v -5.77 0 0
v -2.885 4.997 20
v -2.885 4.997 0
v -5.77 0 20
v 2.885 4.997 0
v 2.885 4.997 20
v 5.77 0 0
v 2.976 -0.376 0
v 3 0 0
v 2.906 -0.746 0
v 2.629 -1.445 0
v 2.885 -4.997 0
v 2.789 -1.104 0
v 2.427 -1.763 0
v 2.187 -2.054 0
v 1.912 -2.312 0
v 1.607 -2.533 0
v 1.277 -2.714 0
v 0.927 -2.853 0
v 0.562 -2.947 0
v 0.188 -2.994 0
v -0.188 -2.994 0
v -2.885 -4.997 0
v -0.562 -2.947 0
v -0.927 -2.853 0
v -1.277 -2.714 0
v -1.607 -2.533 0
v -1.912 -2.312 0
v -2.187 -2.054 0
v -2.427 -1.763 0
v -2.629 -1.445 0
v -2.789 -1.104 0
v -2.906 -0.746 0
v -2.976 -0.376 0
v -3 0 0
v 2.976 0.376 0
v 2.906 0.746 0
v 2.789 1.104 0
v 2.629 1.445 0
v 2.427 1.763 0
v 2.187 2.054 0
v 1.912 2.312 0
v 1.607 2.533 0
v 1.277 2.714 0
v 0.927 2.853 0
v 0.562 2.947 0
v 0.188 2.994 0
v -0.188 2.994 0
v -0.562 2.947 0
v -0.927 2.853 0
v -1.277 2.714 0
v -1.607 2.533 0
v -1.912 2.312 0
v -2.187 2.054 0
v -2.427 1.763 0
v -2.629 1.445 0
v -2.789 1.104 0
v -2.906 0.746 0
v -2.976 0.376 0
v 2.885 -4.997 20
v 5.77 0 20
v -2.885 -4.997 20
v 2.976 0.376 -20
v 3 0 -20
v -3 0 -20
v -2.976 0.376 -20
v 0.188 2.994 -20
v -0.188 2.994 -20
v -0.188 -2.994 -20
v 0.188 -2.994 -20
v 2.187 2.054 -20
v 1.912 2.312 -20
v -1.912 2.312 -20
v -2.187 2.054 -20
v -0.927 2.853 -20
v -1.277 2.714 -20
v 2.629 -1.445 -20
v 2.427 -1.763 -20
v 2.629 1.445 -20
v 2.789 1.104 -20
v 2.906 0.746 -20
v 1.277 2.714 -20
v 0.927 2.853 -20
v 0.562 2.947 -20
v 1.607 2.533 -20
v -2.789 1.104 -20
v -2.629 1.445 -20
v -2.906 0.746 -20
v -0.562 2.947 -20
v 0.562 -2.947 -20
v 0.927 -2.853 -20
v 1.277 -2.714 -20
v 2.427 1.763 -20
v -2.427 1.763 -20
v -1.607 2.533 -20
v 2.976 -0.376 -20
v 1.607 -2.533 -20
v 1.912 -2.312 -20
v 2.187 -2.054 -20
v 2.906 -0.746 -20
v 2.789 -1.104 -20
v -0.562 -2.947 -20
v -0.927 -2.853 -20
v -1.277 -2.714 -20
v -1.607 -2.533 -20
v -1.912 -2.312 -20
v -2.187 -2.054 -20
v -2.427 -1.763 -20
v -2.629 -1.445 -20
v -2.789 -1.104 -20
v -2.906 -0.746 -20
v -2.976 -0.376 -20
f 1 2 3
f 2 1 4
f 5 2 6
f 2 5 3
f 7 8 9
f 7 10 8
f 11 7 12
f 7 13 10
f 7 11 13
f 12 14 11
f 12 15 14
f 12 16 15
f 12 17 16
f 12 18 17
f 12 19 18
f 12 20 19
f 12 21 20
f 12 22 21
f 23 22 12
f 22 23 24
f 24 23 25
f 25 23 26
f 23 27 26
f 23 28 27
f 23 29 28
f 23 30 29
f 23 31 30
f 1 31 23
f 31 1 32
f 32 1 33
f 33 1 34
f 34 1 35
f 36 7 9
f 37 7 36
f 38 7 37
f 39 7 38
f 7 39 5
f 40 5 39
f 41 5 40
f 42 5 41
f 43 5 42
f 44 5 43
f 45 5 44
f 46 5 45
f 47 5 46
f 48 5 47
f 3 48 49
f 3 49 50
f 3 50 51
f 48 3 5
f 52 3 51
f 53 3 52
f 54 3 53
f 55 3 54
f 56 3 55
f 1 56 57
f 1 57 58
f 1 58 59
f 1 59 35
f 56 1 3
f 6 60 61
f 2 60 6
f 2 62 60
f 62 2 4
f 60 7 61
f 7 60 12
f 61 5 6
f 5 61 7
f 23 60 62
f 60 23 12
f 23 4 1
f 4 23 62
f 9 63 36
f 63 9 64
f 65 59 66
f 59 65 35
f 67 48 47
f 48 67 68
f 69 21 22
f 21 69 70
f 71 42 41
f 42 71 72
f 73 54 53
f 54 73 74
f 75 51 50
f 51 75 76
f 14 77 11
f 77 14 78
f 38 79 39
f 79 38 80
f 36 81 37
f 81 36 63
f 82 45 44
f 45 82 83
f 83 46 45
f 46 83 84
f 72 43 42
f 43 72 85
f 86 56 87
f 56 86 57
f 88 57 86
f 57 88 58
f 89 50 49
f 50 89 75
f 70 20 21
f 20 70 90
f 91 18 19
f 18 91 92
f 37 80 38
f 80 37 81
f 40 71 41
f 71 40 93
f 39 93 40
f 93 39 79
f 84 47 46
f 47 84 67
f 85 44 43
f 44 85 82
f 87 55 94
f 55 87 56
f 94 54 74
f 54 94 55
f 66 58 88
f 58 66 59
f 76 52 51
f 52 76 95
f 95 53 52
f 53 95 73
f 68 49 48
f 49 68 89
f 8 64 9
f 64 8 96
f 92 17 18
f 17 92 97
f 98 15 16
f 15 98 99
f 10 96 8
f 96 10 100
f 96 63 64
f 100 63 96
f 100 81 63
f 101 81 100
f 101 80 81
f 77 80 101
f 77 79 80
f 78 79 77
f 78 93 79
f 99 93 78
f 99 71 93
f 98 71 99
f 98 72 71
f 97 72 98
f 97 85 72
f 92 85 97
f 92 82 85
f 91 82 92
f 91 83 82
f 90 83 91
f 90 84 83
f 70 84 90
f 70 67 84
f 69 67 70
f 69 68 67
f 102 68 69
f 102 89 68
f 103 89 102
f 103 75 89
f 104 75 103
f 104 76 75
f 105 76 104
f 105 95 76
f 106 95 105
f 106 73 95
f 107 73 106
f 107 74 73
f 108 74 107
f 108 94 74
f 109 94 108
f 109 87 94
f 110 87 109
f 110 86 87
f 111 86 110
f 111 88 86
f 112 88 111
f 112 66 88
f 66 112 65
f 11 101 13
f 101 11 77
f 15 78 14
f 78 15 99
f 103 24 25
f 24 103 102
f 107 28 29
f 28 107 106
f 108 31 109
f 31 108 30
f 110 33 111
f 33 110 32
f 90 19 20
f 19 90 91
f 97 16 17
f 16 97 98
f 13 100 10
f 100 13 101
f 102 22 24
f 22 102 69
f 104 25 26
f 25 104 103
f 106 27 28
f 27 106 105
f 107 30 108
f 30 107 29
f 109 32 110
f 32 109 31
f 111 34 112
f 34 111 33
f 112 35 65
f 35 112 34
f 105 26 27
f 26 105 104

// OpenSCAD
$fn = 50;


difference() {
	union() {
		translate(v = [0, 0, 0]) {
			rotate(a = [0, 0, 0]) {
				translate(v = [0, 0, 0]) {
					rotate(a = [0, 0, 0]) {
						linear_extrude(height = 20) {
							polygon(points = [[5.7700000000, 0.0000000000], [2.8850000000, 4.9969665798], [-2.8850000000, 4.9969665798], [-5.7700000000, 0.0000000000], [-2.8850000000, -4.9969665798], [2.8850000000, -4.9969665798]]);
						}
					}
				}
			}
		}
		translate(v = [0, 0, -20]) {
			rotate(a = [0, 0, 0]) {
				cylinder(h = 20, r = 3.0000000000);
			}
		}
	}
	union();
}
